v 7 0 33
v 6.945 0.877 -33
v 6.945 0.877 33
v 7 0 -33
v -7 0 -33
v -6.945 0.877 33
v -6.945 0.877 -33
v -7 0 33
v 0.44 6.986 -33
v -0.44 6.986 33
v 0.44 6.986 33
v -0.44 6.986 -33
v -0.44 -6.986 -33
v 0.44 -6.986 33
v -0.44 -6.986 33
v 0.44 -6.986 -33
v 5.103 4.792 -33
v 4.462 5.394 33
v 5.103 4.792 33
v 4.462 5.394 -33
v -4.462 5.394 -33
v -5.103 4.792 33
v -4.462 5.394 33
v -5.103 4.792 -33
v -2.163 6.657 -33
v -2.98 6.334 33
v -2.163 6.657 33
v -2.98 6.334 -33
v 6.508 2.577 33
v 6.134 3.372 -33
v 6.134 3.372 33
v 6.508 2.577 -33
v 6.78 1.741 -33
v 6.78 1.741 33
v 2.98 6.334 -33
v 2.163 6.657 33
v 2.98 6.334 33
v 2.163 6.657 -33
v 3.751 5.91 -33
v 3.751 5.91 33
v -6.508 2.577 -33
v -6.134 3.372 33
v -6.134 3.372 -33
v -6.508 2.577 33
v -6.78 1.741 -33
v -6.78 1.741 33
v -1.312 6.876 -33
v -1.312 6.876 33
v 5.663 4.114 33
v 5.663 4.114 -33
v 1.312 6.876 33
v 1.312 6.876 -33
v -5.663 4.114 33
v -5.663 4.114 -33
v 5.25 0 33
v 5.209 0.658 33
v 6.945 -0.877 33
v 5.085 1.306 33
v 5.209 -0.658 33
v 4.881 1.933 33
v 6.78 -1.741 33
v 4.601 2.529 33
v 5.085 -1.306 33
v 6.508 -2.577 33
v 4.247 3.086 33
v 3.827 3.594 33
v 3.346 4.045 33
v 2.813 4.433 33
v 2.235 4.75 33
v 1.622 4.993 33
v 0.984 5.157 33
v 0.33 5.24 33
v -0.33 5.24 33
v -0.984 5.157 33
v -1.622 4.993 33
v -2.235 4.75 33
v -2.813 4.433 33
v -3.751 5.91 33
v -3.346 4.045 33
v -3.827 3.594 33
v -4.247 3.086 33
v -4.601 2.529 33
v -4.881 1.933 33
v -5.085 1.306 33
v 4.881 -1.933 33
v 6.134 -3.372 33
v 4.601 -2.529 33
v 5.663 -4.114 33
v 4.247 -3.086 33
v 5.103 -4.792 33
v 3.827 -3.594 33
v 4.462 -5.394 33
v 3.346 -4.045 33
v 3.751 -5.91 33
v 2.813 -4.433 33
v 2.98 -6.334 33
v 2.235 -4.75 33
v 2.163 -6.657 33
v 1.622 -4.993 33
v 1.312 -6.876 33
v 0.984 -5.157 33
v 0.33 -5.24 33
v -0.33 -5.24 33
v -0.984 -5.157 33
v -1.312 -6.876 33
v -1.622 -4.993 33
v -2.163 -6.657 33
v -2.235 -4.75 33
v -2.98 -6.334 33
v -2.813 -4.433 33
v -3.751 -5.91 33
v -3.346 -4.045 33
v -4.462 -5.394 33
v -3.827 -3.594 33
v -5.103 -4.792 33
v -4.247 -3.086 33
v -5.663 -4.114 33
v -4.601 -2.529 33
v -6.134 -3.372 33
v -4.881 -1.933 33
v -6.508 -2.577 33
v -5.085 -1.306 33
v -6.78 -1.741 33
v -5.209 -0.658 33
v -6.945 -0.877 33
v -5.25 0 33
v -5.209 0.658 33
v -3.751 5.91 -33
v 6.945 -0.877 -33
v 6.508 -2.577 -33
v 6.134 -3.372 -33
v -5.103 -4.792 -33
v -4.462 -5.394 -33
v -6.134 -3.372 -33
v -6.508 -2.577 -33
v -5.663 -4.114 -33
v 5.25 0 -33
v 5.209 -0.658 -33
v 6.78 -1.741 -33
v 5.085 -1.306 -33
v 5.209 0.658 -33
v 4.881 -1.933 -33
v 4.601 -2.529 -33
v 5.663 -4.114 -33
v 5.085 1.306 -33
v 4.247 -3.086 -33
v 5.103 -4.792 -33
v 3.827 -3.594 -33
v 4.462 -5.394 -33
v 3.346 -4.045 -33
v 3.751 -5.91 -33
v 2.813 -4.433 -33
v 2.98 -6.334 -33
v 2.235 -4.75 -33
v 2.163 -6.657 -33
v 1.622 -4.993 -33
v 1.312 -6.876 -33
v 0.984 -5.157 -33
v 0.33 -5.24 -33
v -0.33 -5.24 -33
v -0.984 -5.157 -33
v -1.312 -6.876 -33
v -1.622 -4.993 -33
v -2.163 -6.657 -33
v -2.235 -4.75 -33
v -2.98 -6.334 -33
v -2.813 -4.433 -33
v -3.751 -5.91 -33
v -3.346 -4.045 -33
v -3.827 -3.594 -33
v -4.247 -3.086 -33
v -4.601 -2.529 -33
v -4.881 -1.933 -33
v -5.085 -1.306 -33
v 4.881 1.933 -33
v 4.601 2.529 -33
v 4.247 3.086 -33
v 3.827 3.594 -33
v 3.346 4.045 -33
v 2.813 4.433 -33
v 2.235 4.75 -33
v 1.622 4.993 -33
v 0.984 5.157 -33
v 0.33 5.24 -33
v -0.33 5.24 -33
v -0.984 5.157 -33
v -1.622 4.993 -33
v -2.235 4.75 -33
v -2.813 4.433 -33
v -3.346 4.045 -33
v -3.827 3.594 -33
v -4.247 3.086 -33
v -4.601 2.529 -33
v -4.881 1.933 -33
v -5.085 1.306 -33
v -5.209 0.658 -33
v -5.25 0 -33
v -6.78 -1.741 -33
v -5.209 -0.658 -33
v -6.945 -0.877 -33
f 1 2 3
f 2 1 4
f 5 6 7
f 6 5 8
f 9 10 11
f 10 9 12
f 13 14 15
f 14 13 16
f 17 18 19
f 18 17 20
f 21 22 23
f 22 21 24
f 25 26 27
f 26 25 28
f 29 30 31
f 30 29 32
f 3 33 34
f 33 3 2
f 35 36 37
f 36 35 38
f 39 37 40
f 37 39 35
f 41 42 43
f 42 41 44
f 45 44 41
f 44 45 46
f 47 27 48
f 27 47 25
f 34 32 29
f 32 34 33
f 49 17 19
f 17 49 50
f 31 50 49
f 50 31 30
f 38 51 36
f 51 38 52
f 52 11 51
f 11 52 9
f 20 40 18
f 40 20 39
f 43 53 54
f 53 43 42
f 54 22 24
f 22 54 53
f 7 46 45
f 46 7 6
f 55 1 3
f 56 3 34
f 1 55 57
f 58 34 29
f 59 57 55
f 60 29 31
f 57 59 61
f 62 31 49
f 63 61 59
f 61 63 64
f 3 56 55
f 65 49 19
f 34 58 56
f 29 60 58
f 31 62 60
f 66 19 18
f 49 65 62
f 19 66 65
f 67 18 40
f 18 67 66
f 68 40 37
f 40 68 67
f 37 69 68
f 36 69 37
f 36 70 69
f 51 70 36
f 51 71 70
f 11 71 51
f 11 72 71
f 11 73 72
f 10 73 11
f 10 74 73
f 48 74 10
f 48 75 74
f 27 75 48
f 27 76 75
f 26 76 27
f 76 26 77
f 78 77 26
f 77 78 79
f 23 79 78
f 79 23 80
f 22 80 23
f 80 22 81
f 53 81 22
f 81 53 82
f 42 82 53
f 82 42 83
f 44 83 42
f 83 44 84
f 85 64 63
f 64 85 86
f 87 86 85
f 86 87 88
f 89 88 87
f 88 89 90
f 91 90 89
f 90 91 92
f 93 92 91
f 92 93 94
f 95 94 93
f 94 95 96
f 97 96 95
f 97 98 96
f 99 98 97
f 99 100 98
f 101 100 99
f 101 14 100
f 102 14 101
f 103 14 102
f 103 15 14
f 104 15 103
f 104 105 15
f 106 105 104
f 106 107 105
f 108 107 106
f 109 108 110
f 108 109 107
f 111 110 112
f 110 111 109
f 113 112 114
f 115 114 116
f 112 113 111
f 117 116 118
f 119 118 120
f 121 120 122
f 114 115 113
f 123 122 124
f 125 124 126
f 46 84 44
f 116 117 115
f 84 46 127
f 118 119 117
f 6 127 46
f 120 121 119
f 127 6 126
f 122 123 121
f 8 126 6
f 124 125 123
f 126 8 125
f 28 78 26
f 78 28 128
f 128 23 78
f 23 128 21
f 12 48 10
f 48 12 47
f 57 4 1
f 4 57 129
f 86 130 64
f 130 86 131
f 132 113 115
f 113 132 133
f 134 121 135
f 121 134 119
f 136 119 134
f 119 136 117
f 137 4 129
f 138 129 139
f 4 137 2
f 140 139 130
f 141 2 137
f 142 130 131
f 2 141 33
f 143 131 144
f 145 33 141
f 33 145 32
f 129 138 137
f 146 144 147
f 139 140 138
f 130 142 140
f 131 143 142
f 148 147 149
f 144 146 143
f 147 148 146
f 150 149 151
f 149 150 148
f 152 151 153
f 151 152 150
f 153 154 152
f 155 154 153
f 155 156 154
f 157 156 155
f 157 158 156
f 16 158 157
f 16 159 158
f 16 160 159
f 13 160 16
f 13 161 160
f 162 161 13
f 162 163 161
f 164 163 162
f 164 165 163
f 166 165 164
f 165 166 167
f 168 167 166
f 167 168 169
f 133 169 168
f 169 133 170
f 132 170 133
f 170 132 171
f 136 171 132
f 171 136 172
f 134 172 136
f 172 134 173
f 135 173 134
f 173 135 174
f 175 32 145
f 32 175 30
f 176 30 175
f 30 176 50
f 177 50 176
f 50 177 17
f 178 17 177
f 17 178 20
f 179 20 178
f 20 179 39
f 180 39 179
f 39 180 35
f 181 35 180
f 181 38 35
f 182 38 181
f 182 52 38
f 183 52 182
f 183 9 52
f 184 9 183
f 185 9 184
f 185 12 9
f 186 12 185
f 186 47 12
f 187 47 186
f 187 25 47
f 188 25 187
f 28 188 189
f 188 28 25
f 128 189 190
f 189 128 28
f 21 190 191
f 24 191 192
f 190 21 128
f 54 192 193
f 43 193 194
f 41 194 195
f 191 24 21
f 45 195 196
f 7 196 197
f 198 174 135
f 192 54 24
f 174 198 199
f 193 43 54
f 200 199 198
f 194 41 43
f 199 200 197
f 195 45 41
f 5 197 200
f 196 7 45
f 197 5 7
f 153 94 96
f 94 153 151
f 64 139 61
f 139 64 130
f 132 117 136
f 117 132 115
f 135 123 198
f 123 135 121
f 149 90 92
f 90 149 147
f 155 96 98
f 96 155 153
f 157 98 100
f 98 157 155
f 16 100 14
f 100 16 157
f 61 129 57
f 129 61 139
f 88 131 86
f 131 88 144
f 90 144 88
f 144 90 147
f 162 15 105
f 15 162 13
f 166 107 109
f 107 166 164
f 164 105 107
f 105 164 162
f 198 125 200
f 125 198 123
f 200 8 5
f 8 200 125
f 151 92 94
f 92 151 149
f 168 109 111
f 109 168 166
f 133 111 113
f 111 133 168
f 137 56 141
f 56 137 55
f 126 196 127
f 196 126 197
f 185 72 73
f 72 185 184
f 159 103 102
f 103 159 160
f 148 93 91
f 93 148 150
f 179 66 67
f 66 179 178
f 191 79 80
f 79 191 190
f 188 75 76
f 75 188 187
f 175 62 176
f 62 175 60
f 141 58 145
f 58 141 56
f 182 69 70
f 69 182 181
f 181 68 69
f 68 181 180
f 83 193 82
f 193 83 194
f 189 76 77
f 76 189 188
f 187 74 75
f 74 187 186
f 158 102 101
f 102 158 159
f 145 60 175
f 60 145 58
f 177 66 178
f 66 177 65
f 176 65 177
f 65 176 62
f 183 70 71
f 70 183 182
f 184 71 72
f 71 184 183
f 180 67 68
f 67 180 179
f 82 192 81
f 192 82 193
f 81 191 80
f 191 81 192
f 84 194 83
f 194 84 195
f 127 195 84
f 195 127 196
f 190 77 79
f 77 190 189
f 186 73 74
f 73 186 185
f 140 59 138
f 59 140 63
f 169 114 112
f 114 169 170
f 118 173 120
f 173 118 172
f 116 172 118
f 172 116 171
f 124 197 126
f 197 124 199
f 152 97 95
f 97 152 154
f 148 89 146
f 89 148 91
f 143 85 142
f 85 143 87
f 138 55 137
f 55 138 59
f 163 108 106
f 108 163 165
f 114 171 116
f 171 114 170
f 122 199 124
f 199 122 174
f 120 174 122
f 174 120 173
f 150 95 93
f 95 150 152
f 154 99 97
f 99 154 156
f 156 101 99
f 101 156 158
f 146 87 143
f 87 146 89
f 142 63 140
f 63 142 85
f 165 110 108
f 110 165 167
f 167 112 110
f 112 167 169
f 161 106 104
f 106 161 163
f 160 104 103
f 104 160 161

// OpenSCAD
$fn = 50;


difference() {
	union() {
		translate(v = [0, 0, -33.0000000000]) {
			cylinder(h = 66, r = 7.0000000000);
		}
	}
	union() {
		translate(v = [0, 0, -100.0000000000]) {
			cylinder(h = 200, r = 5.2500000000);
		}
	}
}
